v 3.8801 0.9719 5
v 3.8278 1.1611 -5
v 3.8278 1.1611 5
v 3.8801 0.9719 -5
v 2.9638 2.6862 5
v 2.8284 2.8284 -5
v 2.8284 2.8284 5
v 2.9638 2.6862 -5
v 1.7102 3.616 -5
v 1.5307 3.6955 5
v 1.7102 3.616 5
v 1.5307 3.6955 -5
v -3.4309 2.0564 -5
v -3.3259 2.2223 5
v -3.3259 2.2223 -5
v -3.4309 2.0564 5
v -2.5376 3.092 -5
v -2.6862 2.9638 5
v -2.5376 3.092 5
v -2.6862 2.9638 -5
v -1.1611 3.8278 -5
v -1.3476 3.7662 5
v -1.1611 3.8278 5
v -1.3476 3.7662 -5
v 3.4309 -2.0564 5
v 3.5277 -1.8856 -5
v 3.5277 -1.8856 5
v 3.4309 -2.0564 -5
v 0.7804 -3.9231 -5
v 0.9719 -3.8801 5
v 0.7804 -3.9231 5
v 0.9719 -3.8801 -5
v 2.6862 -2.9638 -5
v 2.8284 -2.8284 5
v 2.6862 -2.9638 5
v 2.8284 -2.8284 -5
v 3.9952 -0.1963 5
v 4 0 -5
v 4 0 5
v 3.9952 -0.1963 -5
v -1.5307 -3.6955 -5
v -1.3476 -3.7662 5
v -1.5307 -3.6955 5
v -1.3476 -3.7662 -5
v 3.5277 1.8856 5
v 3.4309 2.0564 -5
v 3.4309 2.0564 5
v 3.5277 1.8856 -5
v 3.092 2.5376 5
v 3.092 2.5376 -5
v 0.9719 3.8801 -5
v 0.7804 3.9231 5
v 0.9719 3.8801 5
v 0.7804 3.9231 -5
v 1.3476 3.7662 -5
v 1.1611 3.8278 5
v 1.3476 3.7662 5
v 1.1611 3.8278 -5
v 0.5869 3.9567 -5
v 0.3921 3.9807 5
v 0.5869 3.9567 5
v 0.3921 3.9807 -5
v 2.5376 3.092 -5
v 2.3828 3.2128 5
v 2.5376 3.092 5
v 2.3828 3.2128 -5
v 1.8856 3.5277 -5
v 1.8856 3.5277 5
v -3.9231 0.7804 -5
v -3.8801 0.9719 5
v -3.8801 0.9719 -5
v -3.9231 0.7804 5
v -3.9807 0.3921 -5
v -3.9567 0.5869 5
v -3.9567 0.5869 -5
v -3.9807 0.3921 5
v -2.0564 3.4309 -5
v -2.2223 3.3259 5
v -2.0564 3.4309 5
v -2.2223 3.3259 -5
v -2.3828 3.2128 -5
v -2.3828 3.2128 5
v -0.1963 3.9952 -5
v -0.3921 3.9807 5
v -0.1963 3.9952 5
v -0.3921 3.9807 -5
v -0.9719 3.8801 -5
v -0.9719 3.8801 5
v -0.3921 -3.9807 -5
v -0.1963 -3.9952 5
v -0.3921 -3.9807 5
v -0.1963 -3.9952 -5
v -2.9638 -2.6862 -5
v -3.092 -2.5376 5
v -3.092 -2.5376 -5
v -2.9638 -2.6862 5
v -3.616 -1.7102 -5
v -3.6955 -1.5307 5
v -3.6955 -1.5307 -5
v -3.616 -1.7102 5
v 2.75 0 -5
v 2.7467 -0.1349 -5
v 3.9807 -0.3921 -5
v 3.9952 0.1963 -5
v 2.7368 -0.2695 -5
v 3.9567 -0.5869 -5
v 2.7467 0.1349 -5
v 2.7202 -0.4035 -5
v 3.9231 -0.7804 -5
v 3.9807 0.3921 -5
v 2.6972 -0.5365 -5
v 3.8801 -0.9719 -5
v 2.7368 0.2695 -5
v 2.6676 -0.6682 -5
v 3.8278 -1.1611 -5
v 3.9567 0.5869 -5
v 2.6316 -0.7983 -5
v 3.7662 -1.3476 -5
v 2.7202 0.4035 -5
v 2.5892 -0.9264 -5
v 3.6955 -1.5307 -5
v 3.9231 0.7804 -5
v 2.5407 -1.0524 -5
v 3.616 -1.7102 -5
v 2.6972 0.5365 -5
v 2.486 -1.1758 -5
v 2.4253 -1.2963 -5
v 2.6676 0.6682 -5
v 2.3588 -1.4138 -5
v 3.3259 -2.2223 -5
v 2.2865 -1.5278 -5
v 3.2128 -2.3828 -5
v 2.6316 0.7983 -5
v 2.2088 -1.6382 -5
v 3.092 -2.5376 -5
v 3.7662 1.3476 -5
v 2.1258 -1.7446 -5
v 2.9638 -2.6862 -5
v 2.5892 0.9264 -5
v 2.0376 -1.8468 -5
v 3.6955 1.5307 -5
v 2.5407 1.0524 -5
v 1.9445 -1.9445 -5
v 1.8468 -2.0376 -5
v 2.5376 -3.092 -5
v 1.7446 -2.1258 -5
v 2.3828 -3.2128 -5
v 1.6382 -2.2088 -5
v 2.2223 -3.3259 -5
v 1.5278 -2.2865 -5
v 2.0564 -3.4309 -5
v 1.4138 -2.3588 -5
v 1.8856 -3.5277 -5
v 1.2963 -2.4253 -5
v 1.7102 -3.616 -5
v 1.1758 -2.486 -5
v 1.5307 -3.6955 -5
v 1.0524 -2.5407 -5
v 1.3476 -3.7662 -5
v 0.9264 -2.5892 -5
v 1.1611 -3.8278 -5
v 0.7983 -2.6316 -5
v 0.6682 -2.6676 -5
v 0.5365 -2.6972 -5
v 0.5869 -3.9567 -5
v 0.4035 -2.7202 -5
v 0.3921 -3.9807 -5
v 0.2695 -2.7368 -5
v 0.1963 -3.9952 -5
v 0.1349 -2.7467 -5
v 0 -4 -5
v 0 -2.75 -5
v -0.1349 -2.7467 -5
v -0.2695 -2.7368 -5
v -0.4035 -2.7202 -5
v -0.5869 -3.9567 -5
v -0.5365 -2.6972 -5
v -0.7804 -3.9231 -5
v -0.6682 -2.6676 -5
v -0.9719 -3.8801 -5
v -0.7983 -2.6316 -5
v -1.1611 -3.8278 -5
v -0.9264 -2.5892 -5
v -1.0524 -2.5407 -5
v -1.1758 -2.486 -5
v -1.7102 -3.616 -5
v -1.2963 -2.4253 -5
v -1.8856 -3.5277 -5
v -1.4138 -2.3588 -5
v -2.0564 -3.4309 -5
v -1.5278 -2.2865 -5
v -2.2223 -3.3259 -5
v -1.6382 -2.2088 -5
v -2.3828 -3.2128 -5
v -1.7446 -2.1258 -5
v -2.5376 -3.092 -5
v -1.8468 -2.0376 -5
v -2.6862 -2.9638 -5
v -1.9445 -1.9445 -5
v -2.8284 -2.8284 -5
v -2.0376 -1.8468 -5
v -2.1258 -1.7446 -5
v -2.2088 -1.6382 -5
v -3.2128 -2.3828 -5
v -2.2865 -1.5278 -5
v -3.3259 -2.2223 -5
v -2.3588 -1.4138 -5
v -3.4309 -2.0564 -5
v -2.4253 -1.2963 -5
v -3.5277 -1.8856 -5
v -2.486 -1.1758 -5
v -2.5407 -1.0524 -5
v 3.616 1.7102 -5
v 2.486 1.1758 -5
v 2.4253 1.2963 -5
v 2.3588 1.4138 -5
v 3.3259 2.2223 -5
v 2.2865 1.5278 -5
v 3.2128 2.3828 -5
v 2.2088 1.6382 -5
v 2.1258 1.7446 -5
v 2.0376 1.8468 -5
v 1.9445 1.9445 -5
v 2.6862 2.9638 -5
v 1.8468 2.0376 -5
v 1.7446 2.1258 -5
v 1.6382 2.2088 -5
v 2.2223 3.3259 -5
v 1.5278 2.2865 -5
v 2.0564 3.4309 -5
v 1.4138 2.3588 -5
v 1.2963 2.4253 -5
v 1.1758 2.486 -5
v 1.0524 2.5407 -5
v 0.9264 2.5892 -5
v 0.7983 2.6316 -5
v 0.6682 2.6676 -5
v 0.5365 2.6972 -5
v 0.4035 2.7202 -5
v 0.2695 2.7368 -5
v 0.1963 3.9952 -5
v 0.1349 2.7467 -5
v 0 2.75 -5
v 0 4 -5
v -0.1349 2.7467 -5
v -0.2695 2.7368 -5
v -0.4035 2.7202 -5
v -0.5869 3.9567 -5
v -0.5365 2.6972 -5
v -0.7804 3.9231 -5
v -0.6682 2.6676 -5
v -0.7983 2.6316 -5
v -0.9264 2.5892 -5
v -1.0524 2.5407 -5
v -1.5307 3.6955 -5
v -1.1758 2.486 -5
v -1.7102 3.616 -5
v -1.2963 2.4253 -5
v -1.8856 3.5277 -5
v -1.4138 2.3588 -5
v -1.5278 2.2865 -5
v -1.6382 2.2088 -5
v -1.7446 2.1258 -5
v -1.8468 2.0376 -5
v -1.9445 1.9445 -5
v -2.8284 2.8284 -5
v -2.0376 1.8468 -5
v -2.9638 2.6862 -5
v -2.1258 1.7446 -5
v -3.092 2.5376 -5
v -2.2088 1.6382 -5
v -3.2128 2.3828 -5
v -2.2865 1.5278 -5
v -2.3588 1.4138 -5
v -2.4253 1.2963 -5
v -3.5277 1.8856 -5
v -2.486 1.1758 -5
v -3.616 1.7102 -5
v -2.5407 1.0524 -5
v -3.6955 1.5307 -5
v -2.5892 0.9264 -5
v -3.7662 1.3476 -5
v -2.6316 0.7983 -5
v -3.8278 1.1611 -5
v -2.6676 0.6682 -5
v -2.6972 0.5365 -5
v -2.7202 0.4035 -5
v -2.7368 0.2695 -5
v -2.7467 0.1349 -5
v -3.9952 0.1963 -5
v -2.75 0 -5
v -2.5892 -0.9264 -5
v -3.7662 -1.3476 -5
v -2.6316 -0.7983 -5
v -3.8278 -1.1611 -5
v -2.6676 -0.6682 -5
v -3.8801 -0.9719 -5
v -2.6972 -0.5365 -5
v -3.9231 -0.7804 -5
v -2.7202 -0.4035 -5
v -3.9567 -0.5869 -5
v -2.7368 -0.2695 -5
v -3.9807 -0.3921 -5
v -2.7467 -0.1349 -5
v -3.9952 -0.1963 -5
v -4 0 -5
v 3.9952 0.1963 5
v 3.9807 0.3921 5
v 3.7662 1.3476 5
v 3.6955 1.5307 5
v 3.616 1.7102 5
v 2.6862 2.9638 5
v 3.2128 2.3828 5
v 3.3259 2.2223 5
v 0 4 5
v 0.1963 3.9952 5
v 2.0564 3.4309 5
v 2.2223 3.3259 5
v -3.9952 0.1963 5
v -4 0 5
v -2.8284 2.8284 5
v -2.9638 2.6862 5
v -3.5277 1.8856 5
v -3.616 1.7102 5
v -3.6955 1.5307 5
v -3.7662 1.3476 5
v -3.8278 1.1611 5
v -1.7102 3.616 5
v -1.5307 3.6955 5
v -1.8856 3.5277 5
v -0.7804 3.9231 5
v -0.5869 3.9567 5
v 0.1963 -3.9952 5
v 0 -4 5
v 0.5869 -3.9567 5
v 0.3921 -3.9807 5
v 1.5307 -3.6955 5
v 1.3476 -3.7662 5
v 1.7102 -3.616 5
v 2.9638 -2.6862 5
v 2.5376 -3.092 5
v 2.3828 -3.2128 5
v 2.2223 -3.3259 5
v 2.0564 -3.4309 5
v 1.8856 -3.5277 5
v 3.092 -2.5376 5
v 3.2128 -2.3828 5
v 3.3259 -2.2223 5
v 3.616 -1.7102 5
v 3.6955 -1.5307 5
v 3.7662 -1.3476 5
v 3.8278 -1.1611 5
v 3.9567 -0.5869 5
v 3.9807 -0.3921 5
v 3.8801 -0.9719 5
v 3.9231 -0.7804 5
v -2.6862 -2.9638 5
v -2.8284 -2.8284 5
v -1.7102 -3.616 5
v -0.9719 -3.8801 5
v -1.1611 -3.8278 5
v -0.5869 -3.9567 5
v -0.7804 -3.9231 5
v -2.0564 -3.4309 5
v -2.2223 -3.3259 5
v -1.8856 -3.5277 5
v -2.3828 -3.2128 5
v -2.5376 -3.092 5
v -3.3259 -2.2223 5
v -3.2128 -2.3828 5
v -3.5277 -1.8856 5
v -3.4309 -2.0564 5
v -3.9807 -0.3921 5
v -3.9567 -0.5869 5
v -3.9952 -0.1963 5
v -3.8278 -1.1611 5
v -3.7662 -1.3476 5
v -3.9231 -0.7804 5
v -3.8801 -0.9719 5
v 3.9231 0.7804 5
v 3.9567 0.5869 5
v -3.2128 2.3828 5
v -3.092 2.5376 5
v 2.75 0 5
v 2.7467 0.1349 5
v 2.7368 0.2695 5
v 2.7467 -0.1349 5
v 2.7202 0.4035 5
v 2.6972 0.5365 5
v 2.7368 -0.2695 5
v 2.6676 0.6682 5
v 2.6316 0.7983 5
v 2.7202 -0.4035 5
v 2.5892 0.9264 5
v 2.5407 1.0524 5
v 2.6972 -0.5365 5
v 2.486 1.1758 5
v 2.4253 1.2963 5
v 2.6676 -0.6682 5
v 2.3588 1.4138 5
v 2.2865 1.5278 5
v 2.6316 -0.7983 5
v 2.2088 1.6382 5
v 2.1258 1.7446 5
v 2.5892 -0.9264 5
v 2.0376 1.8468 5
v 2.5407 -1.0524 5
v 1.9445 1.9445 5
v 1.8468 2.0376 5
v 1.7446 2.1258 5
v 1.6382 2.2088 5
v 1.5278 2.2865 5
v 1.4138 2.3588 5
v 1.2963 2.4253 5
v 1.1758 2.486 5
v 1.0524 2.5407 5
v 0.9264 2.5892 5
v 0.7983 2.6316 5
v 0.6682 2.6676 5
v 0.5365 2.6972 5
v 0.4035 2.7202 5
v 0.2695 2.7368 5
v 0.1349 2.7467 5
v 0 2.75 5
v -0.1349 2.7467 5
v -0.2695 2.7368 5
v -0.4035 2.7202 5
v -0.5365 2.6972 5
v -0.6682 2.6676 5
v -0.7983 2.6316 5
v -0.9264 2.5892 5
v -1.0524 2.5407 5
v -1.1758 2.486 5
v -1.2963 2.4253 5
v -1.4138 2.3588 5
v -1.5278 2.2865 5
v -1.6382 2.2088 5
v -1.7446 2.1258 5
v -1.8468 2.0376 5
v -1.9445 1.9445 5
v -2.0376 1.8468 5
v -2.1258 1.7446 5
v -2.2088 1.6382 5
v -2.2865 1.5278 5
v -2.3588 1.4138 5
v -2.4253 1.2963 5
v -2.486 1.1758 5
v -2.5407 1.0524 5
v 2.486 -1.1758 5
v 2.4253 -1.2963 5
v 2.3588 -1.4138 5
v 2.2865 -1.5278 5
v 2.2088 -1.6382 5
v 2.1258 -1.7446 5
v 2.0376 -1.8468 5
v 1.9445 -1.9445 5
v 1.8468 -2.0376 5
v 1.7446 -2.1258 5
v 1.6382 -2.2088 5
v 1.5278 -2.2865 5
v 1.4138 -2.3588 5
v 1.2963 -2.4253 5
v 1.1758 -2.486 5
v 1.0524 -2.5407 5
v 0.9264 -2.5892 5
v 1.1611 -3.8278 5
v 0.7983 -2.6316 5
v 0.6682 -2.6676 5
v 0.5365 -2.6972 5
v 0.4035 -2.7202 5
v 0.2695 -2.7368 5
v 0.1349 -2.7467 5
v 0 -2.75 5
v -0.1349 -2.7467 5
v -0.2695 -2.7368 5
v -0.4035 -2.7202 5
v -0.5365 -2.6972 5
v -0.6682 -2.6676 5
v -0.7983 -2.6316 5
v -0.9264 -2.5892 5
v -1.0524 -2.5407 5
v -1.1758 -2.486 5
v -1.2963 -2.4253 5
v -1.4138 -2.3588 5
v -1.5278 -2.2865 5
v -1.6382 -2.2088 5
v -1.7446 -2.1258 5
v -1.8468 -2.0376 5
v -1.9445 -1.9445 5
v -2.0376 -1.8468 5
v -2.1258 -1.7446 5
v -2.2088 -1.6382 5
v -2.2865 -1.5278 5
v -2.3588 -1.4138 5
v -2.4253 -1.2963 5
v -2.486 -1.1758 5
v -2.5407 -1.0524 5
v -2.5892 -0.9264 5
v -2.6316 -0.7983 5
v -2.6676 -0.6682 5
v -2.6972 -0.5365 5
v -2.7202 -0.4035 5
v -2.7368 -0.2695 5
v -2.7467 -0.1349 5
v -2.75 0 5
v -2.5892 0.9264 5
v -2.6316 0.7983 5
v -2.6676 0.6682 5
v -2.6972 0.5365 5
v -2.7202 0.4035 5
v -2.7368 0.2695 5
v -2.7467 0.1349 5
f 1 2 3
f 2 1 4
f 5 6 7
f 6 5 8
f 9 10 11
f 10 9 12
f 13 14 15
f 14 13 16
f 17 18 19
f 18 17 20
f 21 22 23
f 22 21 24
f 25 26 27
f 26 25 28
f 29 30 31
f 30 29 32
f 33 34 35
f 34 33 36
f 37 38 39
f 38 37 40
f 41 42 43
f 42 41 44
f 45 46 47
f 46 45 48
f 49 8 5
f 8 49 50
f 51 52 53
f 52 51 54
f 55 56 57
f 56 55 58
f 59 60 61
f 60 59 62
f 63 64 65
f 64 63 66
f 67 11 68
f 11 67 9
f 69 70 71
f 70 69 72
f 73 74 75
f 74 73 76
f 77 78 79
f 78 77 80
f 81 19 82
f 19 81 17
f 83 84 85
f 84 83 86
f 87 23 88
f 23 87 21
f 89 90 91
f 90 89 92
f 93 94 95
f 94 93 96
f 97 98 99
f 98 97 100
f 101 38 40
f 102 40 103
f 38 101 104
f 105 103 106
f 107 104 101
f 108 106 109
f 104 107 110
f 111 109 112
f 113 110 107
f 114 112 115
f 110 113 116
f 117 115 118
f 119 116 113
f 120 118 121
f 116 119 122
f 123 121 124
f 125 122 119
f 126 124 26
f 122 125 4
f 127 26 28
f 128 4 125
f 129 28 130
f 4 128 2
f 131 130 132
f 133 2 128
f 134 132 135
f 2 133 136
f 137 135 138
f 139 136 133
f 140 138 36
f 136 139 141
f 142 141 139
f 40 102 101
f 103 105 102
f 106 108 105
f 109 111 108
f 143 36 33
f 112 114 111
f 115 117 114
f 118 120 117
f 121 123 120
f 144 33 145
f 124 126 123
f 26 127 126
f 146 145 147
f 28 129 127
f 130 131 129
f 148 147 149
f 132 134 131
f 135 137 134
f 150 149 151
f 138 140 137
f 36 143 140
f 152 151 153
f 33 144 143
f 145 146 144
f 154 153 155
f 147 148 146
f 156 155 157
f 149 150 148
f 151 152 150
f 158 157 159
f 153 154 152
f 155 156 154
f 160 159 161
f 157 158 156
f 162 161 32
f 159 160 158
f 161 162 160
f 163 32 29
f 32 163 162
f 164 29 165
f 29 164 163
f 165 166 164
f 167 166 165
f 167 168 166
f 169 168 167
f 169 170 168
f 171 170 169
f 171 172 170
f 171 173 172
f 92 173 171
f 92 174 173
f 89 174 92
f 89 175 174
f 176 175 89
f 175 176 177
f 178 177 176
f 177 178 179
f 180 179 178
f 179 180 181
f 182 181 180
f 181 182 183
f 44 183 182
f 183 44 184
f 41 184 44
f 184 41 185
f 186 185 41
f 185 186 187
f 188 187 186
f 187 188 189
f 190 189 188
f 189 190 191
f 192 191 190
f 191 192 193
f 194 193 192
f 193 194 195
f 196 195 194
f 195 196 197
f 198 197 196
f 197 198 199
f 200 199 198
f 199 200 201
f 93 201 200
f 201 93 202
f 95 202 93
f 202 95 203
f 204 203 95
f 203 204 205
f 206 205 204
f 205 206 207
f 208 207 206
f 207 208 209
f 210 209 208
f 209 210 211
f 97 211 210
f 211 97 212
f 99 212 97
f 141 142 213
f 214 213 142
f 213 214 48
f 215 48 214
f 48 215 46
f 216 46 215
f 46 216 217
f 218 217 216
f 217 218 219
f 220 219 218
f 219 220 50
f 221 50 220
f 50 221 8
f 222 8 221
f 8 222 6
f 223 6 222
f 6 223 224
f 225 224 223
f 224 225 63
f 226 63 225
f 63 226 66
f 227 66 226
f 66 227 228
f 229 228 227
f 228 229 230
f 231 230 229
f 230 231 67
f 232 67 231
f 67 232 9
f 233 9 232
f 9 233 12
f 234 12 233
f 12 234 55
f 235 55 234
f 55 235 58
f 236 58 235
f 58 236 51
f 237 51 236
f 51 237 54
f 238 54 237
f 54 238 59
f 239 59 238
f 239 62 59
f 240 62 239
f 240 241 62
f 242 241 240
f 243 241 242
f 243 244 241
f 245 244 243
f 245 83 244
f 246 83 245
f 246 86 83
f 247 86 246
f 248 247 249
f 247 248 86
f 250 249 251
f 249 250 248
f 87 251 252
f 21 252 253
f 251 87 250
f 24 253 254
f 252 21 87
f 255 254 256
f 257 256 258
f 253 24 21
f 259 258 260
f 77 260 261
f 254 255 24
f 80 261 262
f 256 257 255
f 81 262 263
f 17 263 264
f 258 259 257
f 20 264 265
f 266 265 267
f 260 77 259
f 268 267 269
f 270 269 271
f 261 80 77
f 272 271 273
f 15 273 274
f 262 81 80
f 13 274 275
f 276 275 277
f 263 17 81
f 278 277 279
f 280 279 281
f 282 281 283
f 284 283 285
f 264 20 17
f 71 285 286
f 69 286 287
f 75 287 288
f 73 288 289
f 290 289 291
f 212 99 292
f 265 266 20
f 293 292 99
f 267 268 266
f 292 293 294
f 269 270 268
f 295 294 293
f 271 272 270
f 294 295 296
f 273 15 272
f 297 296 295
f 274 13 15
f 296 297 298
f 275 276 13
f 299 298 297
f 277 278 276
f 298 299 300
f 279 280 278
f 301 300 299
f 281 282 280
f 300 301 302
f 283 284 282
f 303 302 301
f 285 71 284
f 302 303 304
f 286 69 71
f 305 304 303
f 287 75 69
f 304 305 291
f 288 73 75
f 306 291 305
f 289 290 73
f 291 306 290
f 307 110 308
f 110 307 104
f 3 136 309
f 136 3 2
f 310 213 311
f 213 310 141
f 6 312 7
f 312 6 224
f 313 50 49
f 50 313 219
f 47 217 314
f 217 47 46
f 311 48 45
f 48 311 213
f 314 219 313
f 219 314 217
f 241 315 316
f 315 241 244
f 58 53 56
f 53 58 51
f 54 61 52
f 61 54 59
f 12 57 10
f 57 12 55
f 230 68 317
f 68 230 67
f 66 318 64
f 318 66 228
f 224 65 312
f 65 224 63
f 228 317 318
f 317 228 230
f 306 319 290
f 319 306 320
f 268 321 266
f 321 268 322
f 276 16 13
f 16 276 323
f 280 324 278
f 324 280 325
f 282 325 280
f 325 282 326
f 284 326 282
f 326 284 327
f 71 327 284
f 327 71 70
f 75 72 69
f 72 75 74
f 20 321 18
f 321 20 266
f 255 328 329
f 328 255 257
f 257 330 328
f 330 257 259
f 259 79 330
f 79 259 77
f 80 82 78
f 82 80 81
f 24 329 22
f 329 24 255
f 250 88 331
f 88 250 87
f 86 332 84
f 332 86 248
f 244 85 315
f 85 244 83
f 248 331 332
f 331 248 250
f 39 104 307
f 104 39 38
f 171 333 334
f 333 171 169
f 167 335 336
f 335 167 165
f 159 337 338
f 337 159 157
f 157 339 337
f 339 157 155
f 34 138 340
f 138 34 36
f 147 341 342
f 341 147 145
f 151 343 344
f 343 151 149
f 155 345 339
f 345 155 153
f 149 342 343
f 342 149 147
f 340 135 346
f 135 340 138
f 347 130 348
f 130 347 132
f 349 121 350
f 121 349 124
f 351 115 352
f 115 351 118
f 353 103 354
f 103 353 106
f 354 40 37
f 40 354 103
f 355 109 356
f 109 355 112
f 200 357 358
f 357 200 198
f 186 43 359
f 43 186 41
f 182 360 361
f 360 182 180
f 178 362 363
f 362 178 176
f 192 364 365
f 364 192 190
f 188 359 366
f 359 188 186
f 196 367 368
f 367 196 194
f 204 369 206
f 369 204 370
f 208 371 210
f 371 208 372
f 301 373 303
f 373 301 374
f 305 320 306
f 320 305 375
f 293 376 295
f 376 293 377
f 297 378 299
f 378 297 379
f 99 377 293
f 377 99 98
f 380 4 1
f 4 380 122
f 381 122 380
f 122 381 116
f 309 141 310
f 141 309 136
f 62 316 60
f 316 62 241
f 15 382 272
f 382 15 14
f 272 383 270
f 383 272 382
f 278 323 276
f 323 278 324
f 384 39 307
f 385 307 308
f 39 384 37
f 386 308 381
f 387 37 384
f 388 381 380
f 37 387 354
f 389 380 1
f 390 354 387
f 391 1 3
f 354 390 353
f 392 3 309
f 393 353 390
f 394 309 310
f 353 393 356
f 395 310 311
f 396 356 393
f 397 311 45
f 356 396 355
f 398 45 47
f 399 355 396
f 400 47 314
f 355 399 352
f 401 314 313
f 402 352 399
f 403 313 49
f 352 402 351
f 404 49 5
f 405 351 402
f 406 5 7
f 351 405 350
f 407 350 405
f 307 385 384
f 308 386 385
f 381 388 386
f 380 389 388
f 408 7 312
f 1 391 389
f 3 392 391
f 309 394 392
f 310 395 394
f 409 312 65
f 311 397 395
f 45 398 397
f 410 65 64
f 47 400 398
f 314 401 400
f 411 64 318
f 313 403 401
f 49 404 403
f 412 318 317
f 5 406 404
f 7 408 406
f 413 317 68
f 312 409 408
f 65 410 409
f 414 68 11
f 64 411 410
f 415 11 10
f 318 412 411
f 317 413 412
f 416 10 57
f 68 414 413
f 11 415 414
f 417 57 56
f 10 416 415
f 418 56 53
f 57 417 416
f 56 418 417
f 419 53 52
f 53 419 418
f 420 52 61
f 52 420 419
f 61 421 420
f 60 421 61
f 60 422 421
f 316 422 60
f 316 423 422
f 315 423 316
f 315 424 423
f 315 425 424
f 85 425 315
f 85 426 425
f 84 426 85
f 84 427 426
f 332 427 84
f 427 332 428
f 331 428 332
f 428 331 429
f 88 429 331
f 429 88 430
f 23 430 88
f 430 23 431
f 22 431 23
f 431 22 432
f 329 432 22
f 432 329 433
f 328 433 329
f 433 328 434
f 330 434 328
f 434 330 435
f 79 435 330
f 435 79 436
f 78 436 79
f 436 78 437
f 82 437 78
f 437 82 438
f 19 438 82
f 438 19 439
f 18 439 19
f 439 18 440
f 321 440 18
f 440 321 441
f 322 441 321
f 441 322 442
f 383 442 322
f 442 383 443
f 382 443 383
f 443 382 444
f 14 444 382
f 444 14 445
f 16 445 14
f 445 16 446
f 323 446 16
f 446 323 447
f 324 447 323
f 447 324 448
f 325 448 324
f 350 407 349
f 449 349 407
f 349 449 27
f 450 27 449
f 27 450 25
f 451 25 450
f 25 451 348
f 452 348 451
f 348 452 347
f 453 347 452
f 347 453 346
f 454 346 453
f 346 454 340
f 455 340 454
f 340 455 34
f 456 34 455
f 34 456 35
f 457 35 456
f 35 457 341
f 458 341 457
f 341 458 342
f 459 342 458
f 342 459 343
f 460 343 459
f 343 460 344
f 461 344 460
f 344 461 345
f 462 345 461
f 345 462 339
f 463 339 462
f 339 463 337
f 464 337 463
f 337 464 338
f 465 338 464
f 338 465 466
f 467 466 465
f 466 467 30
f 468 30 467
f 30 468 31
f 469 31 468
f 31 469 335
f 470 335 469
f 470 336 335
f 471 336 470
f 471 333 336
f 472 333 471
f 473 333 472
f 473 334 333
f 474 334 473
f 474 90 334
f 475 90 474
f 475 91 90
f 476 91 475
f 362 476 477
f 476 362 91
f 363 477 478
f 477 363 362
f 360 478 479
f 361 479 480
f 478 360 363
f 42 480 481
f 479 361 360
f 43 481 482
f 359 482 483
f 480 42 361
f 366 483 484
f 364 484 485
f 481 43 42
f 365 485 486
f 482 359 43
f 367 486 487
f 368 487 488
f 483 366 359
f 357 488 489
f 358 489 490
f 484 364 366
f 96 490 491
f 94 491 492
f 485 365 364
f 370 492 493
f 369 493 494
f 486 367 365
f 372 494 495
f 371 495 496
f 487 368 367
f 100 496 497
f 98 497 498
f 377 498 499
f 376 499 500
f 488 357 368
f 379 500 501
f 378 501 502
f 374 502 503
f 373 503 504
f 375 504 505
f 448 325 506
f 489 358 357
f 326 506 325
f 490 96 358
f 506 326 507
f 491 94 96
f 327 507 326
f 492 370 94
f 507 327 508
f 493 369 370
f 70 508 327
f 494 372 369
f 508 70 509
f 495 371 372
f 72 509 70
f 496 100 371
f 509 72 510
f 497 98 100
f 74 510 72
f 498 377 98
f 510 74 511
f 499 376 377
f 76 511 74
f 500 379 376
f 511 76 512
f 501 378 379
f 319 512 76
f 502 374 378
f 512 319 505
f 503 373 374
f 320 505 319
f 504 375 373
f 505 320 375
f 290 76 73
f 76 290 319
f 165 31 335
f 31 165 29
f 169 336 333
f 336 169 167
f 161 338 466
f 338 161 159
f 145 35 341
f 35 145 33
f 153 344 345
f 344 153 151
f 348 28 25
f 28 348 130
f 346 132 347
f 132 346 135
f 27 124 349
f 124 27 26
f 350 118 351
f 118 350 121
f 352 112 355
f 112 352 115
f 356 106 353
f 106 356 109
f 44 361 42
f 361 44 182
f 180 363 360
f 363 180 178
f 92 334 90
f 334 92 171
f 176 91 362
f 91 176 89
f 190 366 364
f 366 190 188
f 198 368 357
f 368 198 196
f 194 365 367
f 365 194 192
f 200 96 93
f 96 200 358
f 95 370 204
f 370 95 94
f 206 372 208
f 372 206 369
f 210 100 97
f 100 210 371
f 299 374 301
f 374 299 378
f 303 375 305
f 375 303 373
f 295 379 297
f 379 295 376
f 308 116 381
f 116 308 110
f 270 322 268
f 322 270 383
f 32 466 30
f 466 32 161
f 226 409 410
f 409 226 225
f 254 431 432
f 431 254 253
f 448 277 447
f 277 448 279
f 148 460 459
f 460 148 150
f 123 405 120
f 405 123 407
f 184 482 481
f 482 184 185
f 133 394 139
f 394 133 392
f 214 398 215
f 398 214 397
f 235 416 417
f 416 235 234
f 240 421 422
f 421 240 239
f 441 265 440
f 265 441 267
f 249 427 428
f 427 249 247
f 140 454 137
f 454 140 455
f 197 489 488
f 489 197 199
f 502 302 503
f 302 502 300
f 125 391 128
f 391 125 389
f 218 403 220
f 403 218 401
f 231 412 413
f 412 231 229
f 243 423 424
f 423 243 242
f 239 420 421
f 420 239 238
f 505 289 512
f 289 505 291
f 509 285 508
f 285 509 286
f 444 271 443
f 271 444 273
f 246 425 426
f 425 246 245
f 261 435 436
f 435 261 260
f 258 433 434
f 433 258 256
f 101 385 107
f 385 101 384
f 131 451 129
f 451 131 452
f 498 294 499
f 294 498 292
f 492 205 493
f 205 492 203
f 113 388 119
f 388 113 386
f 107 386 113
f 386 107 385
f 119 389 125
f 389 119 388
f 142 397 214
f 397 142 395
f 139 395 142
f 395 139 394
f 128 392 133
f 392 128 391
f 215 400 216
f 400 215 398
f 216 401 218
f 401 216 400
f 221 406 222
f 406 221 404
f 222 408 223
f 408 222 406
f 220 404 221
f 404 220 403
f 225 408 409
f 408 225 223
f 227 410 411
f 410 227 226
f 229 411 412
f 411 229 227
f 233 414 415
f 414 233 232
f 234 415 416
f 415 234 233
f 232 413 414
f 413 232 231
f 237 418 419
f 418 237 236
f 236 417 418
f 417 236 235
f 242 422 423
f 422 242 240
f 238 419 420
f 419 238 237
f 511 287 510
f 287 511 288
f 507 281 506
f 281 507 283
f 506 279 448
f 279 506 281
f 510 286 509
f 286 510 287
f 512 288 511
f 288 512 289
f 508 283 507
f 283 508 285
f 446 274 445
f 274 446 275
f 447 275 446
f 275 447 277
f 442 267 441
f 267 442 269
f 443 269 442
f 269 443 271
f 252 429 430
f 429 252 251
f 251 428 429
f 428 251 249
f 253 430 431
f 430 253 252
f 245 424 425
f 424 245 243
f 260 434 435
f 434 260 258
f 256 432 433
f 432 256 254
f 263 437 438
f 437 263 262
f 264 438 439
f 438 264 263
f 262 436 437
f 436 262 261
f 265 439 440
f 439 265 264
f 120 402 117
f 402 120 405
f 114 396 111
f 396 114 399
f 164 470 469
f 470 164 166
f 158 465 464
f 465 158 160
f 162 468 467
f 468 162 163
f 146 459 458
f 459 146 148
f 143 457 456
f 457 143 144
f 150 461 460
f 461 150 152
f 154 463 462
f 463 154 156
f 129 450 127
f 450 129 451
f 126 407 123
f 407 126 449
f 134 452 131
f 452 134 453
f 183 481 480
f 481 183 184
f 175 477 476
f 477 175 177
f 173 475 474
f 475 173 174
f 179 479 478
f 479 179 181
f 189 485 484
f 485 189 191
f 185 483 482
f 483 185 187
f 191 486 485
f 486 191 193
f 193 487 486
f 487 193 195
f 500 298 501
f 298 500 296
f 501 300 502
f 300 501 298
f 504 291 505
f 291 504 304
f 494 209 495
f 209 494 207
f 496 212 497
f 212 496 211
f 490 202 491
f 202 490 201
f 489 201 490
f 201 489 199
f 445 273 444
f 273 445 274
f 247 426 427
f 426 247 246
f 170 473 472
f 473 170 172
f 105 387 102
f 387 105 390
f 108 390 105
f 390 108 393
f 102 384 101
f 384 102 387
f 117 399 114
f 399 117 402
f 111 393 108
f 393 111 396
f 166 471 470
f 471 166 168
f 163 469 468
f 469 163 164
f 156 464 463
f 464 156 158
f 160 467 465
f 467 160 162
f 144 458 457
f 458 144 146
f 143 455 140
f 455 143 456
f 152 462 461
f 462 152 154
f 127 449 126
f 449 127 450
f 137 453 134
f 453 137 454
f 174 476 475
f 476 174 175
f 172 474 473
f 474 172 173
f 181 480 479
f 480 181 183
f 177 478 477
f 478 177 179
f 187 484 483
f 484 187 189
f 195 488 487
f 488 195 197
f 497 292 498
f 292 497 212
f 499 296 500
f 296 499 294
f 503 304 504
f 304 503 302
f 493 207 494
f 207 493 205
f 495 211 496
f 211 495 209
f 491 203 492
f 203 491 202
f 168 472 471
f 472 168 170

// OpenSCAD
$fn = 128;

height = 10;
outerDiameter = 8;
innerDiameter = 5.5;

difference() {
    cylinder(h = height, d = outerDiameter, center = true);
    cylinder(h = height, d = innerDiameter, center = true);
}
